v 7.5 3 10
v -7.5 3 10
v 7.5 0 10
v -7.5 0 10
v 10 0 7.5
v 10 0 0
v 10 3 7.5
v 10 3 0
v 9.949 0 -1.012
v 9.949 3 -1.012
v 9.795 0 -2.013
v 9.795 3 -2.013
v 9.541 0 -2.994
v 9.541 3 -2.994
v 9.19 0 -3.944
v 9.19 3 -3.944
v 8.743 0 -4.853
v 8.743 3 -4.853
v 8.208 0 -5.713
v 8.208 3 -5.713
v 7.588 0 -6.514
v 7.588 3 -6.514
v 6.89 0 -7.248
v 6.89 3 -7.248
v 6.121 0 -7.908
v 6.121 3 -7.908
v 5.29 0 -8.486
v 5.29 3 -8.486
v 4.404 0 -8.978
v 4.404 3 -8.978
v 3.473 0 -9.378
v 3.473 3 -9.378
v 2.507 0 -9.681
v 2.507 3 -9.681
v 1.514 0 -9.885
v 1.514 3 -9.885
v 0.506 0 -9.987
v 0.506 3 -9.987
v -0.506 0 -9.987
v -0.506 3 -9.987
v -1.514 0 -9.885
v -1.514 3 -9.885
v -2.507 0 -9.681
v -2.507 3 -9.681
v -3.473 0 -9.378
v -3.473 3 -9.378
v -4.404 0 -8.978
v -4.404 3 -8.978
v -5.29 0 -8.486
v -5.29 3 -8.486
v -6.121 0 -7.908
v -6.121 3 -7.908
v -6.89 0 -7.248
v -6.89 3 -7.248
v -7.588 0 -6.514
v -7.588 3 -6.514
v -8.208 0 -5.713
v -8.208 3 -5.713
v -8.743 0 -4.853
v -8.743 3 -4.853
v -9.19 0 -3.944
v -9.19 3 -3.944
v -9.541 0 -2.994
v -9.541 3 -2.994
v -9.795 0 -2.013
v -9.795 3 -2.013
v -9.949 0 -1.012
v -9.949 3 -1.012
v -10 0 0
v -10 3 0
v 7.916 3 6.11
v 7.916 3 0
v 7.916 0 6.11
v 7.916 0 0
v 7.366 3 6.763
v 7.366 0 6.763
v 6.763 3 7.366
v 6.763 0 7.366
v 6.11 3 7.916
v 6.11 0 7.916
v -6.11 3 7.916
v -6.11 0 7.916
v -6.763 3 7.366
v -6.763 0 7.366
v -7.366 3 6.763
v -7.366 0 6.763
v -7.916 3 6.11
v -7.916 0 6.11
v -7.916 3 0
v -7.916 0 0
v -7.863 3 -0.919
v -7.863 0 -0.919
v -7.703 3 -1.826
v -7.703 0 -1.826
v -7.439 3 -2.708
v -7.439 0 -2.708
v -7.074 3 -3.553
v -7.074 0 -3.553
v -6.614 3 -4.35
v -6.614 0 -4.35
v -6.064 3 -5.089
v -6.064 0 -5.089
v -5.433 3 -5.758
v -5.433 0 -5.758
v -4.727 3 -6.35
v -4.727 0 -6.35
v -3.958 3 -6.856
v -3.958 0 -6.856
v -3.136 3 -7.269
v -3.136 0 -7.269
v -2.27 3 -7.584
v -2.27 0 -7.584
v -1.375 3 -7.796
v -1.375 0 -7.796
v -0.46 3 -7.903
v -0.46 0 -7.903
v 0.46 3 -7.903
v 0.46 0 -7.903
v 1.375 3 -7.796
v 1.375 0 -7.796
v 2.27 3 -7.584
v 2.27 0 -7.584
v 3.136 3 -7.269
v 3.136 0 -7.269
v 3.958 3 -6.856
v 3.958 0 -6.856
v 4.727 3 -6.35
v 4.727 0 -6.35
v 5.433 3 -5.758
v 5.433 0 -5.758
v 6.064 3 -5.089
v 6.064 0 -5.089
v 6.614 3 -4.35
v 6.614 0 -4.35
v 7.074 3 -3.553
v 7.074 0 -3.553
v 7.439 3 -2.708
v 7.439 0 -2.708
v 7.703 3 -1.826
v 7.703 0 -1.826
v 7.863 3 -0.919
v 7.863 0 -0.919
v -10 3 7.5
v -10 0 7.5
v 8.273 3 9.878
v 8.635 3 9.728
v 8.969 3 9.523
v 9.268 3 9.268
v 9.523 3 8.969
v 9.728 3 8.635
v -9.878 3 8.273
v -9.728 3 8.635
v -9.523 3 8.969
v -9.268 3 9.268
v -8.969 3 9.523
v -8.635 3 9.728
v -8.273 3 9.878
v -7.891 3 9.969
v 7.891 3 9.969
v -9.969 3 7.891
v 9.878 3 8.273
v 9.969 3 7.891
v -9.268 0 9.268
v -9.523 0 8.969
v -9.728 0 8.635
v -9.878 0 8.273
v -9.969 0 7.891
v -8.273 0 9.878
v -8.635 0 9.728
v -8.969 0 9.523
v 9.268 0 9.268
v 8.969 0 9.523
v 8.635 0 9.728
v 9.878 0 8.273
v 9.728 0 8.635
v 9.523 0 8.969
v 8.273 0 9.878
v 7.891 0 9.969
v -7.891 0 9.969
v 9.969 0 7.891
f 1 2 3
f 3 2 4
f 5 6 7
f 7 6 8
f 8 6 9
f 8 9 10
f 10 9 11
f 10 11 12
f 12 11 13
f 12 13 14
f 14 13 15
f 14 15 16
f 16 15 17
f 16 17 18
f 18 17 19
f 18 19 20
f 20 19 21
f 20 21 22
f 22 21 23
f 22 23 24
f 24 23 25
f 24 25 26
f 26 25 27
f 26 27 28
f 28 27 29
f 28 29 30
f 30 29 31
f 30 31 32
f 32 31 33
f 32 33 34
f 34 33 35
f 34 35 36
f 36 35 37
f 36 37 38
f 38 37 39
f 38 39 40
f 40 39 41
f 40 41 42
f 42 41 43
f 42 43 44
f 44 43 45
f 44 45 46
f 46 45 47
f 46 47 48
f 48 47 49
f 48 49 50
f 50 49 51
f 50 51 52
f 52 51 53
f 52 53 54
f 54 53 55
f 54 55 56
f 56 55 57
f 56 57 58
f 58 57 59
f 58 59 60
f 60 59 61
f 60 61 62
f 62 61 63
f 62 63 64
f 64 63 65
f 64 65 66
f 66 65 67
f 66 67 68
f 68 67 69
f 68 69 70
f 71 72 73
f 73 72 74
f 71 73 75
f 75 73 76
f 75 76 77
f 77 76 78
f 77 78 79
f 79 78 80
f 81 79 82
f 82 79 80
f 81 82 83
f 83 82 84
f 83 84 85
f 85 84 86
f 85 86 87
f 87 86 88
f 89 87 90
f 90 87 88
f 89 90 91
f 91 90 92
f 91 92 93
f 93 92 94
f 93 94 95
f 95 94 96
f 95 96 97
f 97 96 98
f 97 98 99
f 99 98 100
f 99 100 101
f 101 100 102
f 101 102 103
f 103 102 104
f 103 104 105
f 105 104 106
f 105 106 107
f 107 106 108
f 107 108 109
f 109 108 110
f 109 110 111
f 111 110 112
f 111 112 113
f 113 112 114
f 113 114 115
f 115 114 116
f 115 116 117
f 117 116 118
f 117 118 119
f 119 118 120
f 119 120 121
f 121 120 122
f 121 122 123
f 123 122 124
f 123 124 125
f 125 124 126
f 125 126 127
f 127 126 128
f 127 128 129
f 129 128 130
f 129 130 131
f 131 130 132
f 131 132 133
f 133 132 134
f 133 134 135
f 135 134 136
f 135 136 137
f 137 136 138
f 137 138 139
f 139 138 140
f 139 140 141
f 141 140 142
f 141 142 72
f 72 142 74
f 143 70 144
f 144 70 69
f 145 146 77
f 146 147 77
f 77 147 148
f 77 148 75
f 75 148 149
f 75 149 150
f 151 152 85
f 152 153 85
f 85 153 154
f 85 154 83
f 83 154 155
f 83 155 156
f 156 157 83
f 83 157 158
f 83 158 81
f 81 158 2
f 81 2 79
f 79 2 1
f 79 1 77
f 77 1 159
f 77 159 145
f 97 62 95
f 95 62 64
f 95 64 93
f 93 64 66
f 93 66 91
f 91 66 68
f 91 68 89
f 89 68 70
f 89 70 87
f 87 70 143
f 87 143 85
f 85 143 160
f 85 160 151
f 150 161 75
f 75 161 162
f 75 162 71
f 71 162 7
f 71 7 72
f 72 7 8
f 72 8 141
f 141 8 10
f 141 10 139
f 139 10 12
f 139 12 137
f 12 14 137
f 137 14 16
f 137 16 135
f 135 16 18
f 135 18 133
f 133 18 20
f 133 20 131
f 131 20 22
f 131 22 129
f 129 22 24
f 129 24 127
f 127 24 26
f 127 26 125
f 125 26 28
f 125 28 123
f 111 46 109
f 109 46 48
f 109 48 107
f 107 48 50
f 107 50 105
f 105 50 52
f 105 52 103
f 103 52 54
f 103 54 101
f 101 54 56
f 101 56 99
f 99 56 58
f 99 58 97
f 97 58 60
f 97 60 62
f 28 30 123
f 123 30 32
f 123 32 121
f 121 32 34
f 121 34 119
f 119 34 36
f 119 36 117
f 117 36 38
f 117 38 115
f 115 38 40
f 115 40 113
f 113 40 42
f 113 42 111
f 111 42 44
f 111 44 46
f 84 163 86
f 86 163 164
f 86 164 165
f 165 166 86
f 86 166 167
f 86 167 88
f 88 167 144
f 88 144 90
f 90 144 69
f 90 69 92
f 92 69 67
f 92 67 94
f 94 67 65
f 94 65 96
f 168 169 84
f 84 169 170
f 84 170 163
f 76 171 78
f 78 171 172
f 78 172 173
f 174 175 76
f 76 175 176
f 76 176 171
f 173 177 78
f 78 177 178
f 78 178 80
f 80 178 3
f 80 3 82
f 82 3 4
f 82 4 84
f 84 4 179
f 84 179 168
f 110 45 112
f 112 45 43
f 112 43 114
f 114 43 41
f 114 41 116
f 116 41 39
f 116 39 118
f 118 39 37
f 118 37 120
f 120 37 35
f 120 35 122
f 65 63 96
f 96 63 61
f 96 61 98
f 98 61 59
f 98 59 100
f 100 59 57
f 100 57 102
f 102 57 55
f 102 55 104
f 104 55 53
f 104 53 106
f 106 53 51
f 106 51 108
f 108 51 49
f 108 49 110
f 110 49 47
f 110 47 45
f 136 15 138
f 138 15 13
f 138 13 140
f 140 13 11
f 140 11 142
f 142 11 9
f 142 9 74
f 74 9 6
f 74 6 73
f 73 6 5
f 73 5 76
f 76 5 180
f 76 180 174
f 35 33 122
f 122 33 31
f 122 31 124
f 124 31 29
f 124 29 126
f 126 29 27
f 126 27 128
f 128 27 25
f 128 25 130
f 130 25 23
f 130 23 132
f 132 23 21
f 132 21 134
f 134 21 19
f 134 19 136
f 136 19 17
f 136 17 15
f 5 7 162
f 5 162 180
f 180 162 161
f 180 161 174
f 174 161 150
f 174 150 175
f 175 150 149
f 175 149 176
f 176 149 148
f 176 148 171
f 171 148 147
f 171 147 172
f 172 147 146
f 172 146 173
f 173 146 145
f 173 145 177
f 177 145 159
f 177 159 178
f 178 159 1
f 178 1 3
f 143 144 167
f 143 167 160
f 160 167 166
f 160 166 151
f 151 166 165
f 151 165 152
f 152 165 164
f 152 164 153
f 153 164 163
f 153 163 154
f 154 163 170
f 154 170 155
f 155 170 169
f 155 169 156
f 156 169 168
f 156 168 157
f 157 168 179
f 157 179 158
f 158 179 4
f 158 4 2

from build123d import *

# Parameters (mm, degrees)
BOSS_EXTRUDE1_DEPTH = 3
FILLET1_R           = 2.5


with BuildPart() as part:
    # Sketch1 → Boss-Extrude1 (new body)
    with BuildSketch(Plane(origin=(0, 0, 0), x_dir=(1, 0, 0), z_dir=(0, 1, 0))):
        with BuildLine():
            Line((-10, 0), (-7.916454192, 0))
            ThreePointArc((-7.916454192, 0), (0, 7.916454192), (7.916454192, 0))
            Line((7.916454192, 0), (10, 0))
            ThreePointArc((10, 0), (0, 10), (-10, 0))
        make_face()
        with BuildLine():
            Line((-7.916454192, -5.916454192), (-7.916454192, 0))
            Line((-7.916454192, 0), (-10, 0))
            ThreePointArc((-10, 0), (-9.464791121, -3.2276507), (-7.916454192, -6.109807936))
            Line((-7.916454192, -6.109807936), (-7.916454192, -5.916454192))
        make_face()
        with BuildLine():
            ThreePointArc((-7.916454192, -6.109807936), (-9.464791121, -3.2276507), (-10, 0))
            Line((-10, 0), (-10, -10))
            Line((-10, -10), (0, -10))
            ThreePointArc((0, -10), (-3.2276507, -9.464791121), (-6.109807936, -7.916454192))
            Line((-6.109807936, -7.916454192), (-7.916454192, -7.916454192))
            Line((-7.916454192, -7.916454192), (-7.916454192, -6.109807936))
        make_face()
        with BuildLine():
            Line((5.916454192, -7.916454192), (0, -7.916454192))
            Line((0, -7.916454192), (-5.916454192, -7.916454192))
            Line((-5.916454192, -7.916454192), (-6.109807936, -7.916454192))
            ThreePointArc((-6.109807936, -7.916454192), (-3.2276507, -9.464791121), (0, -10))
            ThreePointArc((0, -10), (3.2276507, -9.464791121), (6.109807936, -7.916454192))
            Line((6.109807936, -7.916454192), (5.916454192, -7.916454192))
        make_face()
        with BuildLine():
            Line((10, -10), (10, 0))
            ThreePointArc((10, 0), (9.464791121, -3.2276507), (7.916454192, -6.109807936))
            Line((7.916454192, -6.109807936), (7.916454192, -7.916454192))
            Line((7.916454192, -7.916454192), (6.109807936, -7.916454192))
            ThreePointArc((6.109807936, -7.916454192), (3.2276507, -9.464791121), (0, -10))
            Line((0, -10), (10, -10))
        make_face()
        with BuildLine():
            Line((10, 0), (7.916454192, 0))
            Line((7.916454192, 0), (7.916454192, -5.916454192))
            Line((7.916454192, -5.916454192), (7.916454192, -6.109807936))
            ThreePointArc((7.916454192, -6.109807936), (9.464791121, -3.2276507), (10, 0))
        make_face()
        with BuildLine():
            Line((7.916454192, -7.916454192), (7.916454192, -6.109807936))
            ThreePointArc((7.916454192, -6.109807936), (7.071067812, -7.071067812), (6.109807936, -7.916454192))
            Line((6.109807936, -7.916454192), (7.916454192, -7.916454192))
        make_face()
        with BuildLine():
            ThreePointArc((-6.109807936, -7.916454192), (-7.071067812, -7.071067812), (-7.916454192, -6.109807936))
            Line((-7.916454192, -6.109807936), (-7.916454192, -7.916454192))
            Line((-7.916454192, -7.916454192), (-6.109807936, -7.916454192))
        make_face()
    extrude(amount=BOSS_EXTRUDE1_DEPTH)

    # Fillet1
    fillet1_edges = [part.edges().sort_by_distance(p)[0] for p in [
        (-10, 1.5, 10),
        (10, 1.5, 10),
    ]]
    fillet(fillet1_edges, radius=FILLET1_R)


solid = part.part
